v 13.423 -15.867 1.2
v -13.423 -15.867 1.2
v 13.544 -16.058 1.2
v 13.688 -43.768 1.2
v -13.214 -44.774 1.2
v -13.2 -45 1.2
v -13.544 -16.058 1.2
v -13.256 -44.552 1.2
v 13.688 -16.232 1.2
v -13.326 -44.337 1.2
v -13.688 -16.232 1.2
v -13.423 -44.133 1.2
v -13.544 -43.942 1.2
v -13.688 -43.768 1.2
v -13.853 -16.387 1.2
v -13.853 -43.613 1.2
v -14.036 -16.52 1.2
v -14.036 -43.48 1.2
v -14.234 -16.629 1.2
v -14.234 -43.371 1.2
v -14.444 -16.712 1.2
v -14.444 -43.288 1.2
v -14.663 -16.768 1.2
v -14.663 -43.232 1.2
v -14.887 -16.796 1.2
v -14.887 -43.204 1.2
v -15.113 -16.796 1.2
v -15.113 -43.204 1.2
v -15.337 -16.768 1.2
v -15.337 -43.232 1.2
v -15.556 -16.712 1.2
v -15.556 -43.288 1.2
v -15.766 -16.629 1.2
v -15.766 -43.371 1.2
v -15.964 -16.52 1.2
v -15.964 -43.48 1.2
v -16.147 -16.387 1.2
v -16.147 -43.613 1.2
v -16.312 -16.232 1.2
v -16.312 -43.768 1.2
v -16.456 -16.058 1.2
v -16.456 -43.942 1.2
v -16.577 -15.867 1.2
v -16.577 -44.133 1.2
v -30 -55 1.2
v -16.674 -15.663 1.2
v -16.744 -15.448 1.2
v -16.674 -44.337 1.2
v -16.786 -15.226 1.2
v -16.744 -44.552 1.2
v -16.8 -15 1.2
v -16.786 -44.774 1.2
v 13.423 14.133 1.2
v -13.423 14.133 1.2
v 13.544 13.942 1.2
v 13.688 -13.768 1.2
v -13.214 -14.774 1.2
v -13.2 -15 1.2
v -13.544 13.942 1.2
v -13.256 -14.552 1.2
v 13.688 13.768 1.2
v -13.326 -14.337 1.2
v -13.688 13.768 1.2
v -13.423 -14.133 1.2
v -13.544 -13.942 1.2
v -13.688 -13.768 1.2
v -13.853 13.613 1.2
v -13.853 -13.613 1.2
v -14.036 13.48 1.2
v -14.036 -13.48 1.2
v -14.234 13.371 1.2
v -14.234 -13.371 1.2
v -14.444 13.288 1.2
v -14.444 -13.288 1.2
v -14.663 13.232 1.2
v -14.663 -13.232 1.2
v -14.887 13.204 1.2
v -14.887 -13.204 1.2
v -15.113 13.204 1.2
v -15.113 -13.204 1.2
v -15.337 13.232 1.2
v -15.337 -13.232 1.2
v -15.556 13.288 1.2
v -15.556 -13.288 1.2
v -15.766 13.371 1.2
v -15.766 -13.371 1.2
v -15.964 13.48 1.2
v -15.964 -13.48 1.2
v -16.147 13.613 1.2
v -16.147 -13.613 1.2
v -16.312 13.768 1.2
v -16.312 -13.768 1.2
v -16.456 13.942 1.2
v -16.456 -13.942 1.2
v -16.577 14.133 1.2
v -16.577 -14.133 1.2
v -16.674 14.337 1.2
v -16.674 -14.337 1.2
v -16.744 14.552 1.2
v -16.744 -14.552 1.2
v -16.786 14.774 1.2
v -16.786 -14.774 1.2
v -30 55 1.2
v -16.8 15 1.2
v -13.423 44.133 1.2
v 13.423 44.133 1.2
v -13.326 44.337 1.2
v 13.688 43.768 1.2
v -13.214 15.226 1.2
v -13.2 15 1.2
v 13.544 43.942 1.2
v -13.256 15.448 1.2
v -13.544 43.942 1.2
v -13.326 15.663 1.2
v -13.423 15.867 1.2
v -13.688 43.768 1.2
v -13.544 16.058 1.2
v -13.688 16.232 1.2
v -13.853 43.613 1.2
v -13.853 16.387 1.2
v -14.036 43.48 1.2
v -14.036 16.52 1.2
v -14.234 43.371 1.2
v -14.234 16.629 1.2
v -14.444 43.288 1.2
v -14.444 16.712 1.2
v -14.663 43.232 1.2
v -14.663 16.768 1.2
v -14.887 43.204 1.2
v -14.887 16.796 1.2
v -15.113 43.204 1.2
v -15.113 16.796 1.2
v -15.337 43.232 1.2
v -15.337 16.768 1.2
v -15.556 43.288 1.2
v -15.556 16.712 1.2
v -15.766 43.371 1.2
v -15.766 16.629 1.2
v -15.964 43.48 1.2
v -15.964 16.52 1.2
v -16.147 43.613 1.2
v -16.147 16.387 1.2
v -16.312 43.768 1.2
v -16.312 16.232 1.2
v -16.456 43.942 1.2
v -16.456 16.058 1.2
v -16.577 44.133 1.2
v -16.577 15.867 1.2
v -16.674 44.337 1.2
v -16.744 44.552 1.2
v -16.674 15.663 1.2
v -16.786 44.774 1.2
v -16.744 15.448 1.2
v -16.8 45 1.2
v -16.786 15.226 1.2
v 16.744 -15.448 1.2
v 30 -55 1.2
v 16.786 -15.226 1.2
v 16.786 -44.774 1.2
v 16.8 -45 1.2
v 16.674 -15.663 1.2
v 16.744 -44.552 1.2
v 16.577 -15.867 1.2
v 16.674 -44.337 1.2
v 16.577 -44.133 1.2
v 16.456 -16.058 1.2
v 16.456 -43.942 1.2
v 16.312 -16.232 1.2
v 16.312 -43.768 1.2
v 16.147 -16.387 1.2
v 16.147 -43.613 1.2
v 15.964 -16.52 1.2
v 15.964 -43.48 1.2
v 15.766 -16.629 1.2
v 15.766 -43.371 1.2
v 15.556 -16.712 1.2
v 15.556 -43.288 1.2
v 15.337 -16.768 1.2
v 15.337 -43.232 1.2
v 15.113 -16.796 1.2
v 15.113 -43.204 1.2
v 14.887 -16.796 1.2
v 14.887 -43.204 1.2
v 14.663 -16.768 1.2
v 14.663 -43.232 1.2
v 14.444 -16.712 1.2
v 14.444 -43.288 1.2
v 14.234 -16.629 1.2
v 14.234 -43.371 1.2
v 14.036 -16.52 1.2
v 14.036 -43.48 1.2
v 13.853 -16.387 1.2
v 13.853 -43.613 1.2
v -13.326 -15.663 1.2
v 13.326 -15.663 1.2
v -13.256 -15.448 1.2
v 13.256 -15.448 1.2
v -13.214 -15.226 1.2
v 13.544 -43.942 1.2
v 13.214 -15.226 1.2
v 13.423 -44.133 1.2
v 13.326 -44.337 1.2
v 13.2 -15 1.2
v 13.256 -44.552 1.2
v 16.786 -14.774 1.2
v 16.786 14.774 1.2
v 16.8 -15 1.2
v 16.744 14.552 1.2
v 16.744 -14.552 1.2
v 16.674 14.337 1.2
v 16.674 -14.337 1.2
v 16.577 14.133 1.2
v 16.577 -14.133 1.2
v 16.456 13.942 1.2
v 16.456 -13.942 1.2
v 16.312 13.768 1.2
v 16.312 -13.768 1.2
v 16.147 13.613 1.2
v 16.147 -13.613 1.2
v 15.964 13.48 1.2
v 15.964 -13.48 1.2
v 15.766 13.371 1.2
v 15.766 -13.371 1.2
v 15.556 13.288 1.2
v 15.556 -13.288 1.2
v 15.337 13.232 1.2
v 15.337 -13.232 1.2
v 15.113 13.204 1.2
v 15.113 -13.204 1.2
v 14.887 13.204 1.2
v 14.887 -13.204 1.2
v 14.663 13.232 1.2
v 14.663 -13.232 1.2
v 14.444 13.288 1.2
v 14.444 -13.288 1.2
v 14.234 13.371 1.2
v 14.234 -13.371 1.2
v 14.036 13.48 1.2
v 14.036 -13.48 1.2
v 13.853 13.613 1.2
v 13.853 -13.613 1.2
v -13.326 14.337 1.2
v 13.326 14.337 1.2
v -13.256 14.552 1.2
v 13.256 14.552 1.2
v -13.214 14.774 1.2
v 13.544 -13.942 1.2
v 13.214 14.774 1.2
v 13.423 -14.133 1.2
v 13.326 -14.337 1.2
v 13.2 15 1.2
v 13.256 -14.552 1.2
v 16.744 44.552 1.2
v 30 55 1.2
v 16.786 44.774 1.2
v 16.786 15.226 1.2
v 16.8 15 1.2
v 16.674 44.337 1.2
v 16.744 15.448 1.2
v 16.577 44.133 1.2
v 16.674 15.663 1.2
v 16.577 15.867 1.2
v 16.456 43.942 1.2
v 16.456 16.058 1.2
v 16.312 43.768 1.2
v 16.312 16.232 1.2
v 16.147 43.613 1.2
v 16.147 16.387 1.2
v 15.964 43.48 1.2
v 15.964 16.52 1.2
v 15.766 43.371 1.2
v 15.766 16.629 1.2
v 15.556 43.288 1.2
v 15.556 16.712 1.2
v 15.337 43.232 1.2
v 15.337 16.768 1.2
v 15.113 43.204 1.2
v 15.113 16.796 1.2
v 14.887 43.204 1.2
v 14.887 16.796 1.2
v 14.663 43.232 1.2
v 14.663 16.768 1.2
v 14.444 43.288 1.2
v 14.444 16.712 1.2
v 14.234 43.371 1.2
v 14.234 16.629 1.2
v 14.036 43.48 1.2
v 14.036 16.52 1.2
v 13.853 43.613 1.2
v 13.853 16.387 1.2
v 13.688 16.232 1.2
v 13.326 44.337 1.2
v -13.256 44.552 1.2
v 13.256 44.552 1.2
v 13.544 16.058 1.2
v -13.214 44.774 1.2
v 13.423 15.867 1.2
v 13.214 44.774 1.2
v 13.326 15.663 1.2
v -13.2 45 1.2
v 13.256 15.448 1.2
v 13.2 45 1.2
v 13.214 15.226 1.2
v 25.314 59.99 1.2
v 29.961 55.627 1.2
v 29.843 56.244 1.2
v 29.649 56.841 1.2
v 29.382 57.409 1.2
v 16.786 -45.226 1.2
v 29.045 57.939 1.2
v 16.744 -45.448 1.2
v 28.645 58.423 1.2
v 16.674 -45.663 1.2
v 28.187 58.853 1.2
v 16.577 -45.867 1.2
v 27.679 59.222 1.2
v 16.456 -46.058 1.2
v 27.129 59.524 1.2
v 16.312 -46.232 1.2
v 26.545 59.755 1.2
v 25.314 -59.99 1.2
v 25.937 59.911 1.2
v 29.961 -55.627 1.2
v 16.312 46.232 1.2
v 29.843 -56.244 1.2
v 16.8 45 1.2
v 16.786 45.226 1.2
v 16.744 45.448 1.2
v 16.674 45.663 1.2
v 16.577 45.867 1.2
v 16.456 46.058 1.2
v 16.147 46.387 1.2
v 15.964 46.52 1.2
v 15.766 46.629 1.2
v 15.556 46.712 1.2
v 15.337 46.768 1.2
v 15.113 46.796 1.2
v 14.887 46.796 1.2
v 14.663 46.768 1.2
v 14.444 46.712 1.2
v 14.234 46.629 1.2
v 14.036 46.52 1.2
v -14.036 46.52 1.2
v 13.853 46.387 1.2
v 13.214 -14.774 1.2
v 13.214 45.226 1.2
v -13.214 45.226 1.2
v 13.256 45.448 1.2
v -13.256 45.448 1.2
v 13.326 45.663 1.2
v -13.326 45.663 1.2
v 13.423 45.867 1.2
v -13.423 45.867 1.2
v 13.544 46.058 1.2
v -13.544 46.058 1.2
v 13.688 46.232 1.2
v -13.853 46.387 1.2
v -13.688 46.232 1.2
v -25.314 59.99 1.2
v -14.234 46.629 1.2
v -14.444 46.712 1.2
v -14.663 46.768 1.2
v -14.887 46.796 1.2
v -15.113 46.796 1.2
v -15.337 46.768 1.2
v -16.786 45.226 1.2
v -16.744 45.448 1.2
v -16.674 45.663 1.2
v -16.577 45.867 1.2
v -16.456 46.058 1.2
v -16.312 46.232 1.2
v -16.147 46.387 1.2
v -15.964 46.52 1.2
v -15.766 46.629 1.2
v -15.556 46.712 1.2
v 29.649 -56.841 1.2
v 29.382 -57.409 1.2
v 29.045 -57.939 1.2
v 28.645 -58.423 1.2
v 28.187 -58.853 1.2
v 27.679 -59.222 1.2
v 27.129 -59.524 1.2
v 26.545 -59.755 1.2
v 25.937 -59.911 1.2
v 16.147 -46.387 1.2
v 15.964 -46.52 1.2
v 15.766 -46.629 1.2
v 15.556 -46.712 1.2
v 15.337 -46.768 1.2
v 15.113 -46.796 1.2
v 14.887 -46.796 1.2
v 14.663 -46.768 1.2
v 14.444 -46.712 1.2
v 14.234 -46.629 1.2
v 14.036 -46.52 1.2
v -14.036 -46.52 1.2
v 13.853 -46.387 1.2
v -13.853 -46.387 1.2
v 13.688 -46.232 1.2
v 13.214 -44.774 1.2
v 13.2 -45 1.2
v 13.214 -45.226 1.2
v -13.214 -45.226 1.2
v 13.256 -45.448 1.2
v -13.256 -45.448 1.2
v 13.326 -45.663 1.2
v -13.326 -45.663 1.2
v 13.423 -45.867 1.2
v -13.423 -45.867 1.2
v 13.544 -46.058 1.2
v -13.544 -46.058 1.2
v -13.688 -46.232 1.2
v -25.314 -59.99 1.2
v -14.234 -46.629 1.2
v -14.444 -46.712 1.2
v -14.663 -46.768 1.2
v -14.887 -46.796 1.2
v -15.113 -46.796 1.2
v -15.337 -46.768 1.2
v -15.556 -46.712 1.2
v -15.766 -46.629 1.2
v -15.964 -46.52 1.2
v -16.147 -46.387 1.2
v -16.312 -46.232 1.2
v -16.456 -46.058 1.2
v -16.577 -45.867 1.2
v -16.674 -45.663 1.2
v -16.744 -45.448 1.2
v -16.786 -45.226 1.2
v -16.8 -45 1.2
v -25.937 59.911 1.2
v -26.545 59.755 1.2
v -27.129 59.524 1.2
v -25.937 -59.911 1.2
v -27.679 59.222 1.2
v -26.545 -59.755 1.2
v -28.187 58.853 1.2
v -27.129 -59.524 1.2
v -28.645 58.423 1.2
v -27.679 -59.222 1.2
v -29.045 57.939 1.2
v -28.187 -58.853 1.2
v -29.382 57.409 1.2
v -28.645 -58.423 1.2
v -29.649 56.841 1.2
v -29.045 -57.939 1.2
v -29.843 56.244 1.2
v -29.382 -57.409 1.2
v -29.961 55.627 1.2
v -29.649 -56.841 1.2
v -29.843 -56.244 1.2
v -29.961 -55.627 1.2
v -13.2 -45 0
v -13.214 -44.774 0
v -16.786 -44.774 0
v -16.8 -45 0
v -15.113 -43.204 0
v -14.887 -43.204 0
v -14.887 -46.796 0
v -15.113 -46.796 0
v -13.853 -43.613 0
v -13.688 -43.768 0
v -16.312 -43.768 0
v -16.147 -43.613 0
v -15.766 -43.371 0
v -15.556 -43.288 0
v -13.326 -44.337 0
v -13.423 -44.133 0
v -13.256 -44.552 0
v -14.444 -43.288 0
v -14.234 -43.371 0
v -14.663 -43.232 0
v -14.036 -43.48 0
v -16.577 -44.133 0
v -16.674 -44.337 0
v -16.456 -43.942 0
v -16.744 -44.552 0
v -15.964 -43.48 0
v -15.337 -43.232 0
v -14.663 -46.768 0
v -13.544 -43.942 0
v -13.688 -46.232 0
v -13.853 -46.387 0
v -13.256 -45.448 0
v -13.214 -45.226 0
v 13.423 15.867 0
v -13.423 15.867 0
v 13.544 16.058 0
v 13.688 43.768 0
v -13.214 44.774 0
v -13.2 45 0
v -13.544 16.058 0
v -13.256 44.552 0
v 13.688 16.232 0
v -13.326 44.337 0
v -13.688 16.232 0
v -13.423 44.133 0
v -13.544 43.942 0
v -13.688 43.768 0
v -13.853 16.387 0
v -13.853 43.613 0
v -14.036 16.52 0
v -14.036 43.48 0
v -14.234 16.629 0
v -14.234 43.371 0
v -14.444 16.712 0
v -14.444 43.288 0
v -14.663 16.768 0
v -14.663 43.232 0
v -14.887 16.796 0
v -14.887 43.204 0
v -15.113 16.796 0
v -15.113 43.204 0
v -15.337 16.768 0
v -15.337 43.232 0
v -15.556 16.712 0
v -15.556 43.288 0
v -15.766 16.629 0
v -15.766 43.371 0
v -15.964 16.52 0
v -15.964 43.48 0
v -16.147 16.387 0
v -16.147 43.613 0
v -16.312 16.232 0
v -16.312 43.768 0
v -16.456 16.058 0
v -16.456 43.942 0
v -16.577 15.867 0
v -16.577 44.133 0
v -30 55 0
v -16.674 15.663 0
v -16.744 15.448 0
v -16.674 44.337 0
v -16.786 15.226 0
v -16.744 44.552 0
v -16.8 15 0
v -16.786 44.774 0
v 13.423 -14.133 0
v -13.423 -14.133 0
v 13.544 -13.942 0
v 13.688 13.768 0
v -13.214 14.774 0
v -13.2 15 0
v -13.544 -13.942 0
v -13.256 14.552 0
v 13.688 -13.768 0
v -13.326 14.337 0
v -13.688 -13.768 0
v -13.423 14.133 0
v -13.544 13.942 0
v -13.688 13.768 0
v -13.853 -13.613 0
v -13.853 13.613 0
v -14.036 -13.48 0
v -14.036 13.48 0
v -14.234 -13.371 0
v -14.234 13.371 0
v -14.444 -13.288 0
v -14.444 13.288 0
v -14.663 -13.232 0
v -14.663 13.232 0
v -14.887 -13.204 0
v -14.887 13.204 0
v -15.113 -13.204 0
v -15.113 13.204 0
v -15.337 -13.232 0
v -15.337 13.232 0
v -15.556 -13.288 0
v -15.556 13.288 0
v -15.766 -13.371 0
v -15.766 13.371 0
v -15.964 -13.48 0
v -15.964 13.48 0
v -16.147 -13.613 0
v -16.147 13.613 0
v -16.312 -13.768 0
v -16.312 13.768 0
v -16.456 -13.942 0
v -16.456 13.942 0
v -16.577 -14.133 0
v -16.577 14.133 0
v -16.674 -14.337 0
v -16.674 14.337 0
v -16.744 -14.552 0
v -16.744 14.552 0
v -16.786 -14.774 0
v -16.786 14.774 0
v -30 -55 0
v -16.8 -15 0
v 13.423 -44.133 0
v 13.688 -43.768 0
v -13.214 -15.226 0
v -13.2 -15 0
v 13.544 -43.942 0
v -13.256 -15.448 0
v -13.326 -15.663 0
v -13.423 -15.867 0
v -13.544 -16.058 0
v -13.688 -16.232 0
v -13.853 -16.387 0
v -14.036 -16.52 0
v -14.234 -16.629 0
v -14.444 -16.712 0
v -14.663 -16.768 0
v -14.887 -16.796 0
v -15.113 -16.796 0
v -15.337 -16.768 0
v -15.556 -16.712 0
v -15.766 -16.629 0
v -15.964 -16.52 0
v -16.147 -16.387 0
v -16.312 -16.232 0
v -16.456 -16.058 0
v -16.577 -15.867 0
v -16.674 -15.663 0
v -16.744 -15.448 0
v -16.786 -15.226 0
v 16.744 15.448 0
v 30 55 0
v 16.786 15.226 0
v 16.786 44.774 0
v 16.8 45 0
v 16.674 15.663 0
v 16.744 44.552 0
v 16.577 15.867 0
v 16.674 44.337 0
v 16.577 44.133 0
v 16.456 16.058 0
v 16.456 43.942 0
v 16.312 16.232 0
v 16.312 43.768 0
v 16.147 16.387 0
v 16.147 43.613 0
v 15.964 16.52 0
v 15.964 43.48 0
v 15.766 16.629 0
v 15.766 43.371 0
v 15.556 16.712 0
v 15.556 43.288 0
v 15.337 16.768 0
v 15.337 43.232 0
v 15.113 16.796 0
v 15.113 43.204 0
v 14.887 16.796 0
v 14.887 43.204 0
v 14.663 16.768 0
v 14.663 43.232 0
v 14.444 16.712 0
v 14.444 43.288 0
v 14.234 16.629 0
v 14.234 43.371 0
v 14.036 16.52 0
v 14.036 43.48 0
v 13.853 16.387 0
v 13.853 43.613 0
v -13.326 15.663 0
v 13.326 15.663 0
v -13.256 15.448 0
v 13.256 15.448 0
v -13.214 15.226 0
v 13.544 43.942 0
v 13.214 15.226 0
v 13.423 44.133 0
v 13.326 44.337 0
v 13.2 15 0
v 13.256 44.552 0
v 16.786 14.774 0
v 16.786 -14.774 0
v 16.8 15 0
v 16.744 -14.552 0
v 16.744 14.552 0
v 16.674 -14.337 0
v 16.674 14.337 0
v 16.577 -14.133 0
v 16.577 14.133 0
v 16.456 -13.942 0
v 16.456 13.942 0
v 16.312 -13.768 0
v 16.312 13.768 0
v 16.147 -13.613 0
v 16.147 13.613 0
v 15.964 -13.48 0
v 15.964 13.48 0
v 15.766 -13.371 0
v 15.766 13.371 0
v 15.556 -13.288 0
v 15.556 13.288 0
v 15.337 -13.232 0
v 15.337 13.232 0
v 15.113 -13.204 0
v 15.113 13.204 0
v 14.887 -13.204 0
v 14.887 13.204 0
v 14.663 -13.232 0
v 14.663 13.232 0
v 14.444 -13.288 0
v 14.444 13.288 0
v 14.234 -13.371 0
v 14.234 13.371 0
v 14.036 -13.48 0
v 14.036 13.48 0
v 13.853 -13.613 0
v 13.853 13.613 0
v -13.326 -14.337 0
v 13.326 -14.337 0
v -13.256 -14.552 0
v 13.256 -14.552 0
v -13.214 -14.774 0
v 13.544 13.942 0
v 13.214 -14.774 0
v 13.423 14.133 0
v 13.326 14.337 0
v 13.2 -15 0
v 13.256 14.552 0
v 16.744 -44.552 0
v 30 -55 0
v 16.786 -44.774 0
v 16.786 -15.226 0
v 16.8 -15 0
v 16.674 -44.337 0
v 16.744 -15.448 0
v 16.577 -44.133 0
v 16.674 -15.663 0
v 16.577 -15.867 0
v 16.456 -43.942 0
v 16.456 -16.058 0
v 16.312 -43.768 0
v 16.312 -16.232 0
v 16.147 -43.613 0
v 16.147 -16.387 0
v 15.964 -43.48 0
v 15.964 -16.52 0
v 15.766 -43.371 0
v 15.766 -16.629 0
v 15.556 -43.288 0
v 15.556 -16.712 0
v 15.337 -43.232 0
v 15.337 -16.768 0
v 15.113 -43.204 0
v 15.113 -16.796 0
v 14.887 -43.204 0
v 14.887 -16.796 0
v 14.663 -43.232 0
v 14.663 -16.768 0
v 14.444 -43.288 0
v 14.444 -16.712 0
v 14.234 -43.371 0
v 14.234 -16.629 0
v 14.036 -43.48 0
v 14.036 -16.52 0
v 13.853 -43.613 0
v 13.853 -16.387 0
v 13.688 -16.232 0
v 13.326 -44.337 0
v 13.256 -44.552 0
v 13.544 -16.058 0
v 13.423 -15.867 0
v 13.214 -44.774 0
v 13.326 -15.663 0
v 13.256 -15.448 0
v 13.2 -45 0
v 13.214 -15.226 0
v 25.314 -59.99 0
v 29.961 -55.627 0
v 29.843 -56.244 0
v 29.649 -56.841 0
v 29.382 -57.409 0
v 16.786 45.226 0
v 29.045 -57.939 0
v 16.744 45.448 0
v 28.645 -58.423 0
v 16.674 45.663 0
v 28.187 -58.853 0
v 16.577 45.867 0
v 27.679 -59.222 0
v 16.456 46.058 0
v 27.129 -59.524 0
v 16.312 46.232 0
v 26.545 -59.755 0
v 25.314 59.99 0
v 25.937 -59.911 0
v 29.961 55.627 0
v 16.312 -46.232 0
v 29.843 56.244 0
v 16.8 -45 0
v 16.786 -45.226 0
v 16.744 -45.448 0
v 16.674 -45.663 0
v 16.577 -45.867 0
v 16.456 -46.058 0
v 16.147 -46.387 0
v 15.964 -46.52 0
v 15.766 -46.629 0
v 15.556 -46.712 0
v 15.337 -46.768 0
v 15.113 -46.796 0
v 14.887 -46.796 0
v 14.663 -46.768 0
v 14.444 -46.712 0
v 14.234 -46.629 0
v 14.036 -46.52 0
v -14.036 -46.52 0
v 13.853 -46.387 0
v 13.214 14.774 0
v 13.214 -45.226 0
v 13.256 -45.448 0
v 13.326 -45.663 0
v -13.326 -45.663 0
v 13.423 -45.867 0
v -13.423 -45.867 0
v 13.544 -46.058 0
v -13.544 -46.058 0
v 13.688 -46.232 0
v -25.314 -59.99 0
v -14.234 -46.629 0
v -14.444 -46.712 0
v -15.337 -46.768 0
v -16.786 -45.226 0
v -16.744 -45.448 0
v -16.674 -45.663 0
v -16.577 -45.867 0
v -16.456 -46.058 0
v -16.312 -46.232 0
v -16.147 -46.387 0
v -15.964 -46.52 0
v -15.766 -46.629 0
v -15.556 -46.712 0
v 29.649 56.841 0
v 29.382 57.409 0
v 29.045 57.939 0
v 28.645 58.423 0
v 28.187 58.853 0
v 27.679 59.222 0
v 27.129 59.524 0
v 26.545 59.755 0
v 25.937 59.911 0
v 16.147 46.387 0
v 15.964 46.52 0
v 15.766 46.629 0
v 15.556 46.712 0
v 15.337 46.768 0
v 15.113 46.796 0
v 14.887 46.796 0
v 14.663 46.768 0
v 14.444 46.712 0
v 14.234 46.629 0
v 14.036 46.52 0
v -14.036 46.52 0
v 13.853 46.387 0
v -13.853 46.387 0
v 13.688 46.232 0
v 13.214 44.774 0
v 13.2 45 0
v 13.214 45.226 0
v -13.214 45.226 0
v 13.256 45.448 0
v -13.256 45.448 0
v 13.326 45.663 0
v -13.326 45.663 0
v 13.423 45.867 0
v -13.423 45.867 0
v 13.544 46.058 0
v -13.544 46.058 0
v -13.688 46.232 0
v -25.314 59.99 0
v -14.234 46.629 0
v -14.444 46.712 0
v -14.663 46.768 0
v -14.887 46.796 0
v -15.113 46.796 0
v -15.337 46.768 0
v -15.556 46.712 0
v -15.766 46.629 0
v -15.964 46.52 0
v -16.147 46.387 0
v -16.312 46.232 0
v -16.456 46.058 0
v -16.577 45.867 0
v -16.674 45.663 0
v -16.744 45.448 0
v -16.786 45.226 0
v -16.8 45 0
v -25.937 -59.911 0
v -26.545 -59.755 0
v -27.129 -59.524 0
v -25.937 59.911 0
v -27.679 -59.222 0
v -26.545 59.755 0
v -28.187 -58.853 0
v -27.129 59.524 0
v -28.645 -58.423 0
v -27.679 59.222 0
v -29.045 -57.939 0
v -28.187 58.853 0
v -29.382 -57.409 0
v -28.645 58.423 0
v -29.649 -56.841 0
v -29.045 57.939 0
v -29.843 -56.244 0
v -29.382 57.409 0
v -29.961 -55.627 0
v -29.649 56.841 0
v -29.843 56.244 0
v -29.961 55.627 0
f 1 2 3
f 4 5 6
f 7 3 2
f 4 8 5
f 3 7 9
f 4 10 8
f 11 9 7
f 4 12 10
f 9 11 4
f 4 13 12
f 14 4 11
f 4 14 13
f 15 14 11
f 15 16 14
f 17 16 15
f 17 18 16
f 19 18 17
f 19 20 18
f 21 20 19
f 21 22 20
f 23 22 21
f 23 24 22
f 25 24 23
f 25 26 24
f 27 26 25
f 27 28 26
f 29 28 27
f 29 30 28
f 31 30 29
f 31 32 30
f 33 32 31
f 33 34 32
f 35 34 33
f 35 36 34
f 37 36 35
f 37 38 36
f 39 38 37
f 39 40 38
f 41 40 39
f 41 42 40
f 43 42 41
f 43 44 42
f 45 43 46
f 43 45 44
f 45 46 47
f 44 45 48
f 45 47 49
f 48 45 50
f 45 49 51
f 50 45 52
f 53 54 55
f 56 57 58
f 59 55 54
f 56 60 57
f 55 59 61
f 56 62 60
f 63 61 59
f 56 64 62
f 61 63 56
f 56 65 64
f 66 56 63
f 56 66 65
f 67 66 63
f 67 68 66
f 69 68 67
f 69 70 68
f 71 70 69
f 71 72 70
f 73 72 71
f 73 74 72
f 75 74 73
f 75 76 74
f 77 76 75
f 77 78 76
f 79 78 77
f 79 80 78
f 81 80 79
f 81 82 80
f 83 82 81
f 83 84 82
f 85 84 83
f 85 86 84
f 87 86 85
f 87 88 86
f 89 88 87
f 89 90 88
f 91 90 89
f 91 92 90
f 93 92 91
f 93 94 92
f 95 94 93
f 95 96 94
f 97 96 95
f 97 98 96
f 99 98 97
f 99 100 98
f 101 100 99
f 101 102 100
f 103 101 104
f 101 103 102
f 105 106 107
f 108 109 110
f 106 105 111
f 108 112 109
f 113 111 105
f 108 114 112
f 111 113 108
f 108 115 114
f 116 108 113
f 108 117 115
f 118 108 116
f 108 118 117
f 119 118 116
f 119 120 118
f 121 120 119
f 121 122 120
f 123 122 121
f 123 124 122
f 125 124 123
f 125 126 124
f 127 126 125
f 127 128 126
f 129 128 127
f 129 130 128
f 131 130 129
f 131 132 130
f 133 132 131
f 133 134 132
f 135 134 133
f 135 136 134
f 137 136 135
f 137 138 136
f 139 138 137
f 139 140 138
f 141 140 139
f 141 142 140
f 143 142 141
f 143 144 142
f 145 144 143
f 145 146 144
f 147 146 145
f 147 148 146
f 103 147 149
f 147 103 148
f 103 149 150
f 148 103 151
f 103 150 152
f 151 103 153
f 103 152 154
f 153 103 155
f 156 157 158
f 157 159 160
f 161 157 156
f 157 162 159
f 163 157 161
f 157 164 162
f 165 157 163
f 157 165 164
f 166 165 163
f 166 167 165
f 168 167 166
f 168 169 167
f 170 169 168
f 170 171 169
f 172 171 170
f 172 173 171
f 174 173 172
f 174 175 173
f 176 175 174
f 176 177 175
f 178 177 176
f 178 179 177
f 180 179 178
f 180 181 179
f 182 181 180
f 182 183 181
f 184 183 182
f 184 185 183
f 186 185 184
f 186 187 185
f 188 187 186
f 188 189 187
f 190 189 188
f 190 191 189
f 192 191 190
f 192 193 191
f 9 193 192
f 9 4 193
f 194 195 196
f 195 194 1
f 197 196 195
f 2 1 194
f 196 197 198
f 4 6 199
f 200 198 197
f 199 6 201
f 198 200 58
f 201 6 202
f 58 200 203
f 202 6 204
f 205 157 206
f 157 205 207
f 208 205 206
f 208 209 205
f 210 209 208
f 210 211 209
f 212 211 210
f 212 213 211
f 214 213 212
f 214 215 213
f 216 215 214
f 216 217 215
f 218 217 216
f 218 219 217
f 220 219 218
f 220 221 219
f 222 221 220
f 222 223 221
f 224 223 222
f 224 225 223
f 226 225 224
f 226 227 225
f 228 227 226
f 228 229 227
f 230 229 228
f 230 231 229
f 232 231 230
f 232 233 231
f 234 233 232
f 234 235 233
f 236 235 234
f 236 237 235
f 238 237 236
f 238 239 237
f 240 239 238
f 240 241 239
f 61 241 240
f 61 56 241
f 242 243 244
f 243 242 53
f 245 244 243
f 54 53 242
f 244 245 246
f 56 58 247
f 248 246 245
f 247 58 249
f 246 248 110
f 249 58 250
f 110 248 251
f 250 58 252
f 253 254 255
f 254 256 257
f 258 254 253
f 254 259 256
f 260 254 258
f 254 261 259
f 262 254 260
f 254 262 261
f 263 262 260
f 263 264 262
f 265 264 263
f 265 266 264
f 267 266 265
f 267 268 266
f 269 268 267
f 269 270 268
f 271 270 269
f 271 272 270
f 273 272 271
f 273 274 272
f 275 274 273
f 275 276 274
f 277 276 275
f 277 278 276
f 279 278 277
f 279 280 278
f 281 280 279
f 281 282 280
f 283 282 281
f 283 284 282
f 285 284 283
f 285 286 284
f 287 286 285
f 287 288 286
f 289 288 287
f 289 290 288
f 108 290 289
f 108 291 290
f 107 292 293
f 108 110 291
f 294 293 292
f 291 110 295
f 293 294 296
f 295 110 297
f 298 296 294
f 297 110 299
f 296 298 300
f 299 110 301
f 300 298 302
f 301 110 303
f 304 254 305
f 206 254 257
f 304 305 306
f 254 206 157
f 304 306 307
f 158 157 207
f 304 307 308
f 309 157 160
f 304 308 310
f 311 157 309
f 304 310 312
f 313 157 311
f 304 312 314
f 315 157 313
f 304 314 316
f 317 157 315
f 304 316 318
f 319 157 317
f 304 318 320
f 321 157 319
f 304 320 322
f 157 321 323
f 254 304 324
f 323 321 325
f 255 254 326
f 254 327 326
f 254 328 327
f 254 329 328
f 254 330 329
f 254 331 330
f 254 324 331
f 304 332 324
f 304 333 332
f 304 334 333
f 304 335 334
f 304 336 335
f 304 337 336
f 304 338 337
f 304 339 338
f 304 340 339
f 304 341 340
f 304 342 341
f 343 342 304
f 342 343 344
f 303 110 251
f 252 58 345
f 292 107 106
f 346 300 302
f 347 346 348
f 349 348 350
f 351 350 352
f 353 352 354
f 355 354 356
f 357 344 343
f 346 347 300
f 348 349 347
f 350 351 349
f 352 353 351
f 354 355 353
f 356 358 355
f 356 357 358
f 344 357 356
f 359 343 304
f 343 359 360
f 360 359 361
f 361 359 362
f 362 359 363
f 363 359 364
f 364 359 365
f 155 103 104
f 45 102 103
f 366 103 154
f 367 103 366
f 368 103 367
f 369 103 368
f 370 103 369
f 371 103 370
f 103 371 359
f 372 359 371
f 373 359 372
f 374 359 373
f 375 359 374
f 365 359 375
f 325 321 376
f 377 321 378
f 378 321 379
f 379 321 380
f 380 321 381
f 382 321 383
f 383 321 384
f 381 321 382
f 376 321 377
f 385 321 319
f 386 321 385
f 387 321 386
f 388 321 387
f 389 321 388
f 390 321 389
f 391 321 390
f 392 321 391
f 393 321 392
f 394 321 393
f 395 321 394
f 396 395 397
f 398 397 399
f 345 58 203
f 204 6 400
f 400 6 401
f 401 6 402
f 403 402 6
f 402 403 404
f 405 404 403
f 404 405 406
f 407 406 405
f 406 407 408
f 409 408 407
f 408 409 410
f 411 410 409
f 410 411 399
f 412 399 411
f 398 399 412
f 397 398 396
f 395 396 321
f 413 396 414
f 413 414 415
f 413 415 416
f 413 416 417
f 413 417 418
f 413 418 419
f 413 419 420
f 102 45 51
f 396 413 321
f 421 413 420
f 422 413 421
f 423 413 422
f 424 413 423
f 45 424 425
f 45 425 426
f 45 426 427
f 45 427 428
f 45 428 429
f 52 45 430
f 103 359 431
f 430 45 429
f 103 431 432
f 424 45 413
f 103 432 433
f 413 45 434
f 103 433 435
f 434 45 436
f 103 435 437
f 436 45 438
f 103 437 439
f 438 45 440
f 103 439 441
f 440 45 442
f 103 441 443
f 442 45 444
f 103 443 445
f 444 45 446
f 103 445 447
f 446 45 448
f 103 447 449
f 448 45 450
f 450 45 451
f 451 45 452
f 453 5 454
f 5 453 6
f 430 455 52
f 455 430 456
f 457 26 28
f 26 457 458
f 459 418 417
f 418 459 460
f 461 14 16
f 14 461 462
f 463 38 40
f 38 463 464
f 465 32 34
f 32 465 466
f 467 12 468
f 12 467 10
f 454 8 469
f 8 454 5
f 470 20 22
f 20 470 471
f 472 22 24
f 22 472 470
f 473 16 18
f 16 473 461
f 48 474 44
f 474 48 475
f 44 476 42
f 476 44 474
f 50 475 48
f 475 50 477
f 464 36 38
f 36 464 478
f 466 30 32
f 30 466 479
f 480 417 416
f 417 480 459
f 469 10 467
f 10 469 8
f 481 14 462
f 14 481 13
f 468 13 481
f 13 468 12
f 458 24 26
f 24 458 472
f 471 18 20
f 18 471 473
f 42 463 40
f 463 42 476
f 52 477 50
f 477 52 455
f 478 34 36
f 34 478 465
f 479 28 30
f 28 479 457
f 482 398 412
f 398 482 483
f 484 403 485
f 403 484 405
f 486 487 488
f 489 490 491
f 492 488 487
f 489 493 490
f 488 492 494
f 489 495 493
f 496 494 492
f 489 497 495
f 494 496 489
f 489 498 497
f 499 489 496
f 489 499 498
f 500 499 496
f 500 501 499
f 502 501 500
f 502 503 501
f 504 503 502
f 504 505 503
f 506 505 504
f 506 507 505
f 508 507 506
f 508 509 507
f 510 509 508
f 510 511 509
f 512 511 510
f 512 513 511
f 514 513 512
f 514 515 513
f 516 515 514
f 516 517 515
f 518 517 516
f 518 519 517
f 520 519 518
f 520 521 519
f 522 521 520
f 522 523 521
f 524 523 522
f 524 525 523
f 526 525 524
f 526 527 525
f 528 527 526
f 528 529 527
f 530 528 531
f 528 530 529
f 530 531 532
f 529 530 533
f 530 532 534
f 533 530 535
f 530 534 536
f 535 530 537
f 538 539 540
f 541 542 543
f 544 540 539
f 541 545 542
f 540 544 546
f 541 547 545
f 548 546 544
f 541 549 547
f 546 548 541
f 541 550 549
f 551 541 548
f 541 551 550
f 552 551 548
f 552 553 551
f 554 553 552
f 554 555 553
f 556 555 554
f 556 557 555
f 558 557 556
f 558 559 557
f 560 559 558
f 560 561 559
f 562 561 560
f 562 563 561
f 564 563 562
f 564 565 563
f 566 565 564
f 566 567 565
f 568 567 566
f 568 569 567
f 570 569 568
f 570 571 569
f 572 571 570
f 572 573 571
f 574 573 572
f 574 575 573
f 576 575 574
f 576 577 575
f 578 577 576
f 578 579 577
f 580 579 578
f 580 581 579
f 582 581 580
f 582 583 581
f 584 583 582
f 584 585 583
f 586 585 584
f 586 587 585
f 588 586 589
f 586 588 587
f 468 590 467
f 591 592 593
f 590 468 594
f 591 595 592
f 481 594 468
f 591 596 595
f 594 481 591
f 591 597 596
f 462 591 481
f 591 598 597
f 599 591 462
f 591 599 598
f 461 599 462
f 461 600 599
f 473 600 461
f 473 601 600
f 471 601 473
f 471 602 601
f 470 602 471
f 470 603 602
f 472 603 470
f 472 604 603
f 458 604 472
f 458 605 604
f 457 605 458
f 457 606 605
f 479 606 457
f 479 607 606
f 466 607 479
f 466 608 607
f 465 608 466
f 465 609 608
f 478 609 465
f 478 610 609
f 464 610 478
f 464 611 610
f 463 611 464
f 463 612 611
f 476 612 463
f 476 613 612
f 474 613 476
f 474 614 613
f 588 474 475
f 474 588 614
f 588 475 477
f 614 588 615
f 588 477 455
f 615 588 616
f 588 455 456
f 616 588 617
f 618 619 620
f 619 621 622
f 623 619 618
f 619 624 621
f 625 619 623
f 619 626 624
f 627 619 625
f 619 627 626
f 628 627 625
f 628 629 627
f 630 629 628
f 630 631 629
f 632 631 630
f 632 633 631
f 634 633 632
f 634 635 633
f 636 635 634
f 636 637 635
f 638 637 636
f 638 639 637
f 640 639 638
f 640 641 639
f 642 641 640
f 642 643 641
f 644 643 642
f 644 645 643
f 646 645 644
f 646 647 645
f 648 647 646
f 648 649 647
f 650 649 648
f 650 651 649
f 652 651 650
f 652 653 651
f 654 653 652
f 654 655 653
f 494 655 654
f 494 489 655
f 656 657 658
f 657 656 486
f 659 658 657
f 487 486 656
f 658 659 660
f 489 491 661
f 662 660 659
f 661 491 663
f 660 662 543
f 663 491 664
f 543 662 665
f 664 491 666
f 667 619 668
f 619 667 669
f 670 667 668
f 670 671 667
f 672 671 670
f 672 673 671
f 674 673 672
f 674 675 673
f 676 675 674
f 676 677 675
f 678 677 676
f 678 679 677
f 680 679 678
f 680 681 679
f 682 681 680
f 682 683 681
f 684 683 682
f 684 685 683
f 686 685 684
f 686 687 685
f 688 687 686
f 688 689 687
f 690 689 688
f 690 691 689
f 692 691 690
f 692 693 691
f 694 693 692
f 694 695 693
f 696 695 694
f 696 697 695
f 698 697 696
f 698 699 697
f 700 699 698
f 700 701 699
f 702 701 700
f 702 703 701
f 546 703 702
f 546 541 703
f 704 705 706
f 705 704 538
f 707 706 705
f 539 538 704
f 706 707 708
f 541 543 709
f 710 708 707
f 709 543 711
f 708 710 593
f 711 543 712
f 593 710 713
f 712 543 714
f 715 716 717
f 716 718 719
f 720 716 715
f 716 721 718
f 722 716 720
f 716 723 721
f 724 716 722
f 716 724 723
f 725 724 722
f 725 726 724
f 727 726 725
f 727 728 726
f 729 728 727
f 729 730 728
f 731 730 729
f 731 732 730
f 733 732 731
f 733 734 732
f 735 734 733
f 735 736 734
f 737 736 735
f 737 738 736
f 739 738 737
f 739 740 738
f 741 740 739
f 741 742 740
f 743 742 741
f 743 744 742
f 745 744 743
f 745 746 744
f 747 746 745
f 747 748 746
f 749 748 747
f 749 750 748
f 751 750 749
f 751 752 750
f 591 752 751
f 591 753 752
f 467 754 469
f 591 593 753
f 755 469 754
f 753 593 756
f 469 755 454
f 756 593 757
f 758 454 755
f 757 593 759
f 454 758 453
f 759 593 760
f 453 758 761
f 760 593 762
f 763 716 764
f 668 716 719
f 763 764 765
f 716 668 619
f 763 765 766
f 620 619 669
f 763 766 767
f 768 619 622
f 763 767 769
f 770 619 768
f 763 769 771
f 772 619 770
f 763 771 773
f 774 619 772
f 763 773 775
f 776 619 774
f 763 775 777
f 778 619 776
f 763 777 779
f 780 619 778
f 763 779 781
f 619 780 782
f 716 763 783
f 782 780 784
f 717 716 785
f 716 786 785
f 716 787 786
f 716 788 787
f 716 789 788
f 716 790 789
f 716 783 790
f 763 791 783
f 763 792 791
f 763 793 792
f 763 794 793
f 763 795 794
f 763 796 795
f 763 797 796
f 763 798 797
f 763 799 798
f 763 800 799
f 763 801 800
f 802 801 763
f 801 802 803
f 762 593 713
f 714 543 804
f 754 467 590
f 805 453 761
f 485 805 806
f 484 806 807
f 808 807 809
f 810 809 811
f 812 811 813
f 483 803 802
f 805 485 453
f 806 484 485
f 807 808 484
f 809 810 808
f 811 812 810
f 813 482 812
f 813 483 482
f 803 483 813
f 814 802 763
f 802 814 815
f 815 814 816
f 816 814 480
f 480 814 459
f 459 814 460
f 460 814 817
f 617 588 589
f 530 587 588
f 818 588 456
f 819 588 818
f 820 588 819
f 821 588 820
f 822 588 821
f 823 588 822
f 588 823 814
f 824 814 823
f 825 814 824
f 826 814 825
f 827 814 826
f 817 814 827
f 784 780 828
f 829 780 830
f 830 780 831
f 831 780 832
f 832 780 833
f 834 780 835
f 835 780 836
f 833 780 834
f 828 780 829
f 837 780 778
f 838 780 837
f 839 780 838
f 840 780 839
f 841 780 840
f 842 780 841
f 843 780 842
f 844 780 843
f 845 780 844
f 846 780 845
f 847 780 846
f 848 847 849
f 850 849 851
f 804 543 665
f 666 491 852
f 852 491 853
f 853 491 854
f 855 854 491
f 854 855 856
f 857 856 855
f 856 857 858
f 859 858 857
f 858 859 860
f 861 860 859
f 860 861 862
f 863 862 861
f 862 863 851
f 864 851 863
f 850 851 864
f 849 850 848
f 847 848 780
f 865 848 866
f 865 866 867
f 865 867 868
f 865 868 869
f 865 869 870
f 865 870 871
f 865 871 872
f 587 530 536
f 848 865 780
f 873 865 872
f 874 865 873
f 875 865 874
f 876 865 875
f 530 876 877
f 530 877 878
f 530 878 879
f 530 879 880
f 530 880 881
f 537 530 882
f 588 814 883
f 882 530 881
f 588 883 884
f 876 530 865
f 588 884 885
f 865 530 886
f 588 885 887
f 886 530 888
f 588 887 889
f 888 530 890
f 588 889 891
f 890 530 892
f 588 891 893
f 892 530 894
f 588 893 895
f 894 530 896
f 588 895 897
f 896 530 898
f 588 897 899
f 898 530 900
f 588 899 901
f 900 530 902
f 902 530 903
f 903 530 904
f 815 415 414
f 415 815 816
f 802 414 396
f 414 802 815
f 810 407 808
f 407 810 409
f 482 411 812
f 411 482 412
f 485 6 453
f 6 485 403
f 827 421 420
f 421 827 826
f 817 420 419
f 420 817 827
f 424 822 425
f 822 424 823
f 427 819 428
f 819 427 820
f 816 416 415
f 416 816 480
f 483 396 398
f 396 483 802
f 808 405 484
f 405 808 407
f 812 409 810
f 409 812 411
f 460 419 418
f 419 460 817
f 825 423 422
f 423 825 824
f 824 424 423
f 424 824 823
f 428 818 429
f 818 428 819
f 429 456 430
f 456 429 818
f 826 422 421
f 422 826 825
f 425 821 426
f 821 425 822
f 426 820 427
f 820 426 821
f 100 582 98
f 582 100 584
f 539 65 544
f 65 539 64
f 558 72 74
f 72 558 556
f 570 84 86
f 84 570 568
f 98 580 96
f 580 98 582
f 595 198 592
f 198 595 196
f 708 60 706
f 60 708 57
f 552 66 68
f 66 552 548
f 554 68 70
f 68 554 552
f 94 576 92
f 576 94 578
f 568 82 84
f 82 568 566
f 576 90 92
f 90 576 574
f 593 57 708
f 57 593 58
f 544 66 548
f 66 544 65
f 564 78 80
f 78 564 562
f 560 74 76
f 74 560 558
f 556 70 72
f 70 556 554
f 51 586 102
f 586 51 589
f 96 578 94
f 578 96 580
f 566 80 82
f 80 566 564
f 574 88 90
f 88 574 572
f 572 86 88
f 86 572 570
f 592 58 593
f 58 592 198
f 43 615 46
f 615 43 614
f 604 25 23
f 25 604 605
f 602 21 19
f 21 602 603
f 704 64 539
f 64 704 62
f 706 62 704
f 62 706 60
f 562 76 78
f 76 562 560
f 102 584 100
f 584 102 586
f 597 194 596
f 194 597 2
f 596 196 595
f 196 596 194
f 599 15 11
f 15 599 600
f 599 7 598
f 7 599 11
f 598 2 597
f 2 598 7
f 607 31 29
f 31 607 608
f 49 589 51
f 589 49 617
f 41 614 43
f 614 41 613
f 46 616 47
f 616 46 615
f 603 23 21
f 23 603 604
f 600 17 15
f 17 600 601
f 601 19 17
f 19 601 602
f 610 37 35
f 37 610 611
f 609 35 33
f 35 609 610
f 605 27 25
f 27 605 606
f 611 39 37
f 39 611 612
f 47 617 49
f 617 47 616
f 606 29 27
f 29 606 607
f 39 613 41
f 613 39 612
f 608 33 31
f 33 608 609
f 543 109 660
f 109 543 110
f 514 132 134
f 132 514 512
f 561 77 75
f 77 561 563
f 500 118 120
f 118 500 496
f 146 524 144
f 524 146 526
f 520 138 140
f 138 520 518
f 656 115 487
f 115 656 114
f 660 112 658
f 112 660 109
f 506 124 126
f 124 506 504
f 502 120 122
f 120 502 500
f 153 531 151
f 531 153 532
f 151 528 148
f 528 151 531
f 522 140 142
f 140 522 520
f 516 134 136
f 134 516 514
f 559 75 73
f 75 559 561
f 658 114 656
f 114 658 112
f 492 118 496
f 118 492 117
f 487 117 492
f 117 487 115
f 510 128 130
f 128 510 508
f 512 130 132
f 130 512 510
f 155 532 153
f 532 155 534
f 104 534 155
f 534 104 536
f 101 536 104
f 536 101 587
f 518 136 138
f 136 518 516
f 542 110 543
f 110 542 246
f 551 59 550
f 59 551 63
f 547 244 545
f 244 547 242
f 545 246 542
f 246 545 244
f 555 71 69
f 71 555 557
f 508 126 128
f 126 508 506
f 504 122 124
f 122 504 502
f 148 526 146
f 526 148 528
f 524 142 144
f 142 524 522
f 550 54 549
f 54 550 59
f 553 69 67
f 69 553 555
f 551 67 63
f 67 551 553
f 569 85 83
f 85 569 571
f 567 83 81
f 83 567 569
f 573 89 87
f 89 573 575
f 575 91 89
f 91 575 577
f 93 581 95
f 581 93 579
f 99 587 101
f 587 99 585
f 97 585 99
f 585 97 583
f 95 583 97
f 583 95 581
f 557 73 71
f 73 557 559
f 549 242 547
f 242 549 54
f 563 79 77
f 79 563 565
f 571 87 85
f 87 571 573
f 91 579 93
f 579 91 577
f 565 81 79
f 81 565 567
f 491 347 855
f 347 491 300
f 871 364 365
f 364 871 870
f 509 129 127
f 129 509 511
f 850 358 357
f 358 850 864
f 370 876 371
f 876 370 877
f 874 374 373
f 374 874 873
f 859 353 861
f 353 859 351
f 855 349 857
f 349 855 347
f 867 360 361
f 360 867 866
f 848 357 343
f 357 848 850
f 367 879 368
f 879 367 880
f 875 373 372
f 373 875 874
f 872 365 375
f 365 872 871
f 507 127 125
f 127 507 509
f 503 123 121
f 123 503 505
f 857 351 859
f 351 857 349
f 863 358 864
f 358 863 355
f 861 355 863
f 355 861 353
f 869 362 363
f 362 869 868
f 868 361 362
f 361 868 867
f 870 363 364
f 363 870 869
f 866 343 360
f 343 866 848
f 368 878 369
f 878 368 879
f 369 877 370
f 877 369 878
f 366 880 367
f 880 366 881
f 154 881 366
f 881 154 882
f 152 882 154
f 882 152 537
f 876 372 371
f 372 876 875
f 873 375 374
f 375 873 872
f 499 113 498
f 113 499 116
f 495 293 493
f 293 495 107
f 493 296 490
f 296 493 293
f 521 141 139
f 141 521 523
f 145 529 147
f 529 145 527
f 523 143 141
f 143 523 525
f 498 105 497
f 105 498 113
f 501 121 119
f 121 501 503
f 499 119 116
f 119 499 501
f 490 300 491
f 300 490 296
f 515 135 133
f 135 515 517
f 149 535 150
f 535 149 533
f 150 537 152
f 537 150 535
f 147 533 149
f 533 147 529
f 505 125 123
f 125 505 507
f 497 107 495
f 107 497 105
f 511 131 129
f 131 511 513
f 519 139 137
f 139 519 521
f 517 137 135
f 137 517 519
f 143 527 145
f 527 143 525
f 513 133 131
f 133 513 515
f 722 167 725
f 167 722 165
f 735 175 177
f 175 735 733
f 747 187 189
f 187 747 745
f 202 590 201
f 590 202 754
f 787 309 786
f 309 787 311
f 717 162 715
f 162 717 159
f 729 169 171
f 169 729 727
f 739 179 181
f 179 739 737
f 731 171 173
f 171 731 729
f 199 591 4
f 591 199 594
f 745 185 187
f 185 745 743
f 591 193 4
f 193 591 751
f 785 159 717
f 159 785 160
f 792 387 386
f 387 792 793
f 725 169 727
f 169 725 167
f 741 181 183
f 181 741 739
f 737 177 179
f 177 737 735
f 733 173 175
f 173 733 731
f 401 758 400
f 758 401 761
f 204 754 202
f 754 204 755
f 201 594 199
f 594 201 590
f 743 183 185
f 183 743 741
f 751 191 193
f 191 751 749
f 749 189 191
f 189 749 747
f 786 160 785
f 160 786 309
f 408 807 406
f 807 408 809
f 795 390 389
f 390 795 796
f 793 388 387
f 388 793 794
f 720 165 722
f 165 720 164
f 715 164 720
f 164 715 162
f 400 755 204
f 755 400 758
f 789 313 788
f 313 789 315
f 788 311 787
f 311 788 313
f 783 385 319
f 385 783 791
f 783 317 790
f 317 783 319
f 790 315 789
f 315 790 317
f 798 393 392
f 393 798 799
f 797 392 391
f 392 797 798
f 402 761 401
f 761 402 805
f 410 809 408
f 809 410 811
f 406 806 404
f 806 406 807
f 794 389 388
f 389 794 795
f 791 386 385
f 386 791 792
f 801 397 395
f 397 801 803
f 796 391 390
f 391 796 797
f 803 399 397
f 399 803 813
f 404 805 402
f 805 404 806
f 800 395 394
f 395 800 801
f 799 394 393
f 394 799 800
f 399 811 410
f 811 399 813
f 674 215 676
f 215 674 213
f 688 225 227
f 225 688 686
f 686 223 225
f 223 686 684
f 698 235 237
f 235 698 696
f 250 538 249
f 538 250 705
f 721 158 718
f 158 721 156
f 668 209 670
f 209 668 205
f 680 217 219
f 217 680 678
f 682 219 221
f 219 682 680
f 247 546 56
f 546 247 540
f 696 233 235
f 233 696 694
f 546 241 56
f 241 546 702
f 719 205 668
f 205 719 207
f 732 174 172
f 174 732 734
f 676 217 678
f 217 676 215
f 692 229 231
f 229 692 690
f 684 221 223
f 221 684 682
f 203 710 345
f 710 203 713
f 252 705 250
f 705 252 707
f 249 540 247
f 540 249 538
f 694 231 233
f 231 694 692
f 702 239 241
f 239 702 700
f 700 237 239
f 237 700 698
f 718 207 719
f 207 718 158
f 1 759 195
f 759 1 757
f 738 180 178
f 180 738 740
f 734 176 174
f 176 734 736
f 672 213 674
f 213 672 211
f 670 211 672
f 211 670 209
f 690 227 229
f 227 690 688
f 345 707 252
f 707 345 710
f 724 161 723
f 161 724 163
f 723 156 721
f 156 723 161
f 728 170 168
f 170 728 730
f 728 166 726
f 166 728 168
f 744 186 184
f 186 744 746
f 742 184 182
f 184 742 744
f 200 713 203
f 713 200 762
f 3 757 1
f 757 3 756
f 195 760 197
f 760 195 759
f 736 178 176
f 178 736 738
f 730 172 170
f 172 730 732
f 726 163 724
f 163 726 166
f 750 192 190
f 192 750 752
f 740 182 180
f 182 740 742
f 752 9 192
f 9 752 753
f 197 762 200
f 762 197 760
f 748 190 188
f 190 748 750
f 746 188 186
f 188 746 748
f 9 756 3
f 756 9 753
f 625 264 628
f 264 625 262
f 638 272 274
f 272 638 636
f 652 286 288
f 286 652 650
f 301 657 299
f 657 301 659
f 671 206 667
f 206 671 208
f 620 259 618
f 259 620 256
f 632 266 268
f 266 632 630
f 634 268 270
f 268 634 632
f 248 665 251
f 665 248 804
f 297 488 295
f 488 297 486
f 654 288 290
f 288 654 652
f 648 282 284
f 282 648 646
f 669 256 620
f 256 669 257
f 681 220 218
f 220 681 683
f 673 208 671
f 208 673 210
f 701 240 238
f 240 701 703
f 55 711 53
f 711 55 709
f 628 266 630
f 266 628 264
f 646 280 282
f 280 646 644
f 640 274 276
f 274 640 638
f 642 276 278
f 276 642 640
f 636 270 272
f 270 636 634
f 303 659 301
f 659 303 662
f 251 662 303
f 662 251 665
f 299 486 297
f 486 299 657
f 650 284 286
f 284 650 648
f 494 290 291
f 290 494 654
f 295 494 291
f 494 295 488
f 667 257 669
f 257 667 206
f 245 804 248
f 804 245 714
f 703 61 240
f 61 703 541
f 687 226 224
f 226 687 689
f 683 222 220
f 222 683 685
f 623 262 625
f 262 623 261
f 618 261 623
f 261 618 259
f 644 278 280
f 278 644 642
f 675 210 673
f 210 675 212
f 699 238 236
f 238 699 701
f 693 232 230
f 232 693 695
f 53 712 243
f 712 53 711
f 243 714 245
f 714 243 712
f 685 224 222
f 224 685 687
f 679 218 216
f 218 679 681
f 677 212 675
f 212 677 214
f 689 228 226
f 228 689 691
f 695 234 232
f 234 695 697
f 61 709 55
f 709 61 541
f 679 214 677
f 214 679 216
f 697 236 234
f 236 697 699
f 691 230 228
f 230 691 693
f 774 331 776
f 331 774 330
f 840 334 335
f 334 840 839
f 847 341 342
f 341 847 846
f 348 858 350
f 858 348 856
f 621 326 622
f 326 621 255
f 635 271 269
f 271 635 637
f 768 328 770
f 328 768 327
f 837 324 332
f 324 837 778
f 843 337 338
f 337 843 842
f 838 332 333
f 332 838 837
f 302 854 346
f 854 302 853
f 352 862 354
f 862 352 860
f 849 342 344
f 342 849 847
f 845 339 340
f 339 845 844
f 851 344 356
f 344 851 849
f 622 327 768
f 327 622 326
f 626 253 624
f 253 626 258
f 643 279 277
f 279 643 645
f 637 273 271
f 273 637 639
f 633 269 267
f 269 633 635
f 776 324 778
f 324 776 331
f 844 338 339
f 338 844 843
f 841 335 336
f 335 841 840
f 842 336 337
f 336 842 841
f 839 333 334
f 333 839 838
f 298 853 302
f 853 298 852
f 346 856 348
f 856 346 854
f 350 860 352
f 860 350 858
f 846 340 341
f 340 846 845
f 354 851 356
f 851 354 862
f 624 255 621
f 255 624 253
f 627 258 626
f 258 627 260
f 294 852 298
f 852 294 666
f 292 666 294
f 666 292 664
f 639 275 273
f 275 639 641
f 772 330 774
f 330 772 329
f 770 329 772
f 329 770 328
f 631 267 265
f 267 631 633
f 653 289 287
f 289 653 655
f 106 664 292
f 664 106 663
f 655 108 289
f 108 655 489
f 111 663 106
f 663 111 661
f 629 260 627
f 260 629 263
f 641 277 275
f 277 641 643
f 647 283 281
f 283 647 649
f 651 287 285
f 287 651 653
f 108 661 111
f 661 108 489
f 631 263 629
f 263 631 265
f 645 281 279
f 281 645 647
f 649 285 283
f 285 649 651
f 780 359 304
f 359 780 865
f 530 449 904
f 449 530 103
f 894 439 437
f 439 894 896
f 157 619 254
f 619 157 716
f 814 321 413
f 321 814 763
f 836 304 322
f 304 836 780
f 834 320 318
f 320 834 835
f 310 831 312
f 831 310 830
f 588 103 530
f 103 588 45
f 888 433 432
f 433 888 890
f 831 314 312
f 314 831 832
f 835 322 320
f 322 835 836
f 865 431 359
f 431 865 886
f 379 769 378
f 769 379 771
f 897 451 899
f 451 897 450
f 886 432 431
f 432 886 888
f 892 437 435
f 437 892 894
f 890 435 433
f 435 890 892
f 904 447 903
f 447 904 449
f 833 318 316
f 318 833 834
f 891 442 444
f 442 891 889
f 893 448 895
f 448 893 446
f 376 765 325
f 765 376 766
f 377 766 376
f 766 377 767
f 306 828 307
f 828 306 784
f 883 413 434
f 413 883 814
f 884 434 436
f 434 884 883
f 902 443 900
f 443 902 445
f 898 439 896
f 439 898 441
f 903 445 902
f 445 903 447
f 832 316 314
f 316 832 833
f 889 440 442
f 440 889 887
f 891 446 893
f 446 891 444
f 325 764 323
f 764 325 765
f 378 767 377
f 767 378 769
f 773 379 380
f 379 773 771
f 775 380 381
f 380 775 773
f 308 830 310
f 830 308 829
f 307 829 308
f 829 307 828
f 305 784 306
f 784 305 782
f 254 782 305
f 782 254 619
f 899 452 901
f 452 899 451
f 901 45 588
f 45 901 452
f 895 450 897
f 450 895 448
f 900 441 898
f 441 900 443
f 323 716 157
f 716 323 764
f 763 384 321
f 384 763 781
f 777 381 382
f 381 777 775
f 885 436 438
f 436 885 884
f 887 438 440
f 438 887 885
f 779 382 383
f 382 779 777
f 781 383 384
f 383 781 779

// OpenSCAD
$fn = 50;


difference() {
	union() {
		hull() {
			translate(v = [-25.0000000000, 55.0000000000, 0]) {
				cylinder(h = 27, r = 5);
			}
			translate(v = [25.0000000000, 55.0000000000, 0]) {
				cylinder(h = 27, r = 5);
			}
			translate(v = [-25.0000000000, -55.0000000000, 0]) {
				cylinder(h = 27, r = 5);
			}
			translate(v = [25.0000000000, -55.0000000000, 0]) {
				cylinder(h = 27, r = 5);
			}
		}
	}
	union() {
		translate(v = [0, 0, 1.2000000000]) {
			hull() {
				translate(v = [-25.0000000000, 55.0000000000, 0]) {
					cylinder(h = 25.8000000000, r = 3.8000000000);
				}
				translate(v = [25.0000000000, 55.0000000000, 0]) {
					cylinder(h = 25.8000000000, r = 3.8000000000);
				}
				translate(v = [-25.0000000000, -55.0000000000, 0]) {
					cylinder(h = 25.8000000000, r = 3.8000000000);
				}
				translate(v = [25.0000000000, -55.0000000000, 0]) {
					cylinder(h = 25.8000000000, r = 3.8000000000);
				}
			}
		}
		#translate(v = [-15.0000000000, -45.0000000000, 0]) {
			cylinder(h = 1.2000000000, r = 1.8000000000);
		}
		#translate(v = [-15.0000000000, -15.0000000000, 0]) {
			cylinder(h = 1.2000000000, r = 1.8000000000);
		}
		#translate(v = [-15.0000000000, 15.0000000000, 0]) {
			cylinder(h = 1.2000000000, r = 1.8000000000);
		}
		#translate(v = [-15.0000000000, 45.0000000000, 0]) {
			cylinder(h = 1.2000000000, r = 1.8000000000);
		}
		#translate(v = [15.0000000000, -45.0000000000, 0]) {
			cylinder(h = 1.2000000000, r = 1.8000000000);
		}
		#translate(v = [15.0000000000, -15.0000000000, 0]) {
			cylinder(h = 1.2000000000, r = 1.8000000000);
		}
		#translate(v = [15.0000000000, 15.0000000000, 0]) {
			cylinder(h = 1.2000000000, r = 1.8000000000);
		}
		#translate(v = [15.0000000000, 45.0000000000, 0]) {
			cylinder(h = 1.2000000000, r = 1.8000000000);
		}
		translate(v = [-250.0000000000, -250.0000000000, 1.2000000000]) {
			cube(size = [500, 500, 500]);
		}
		translate(v = [-250.0000000000, -250.0000000000, 1.2000000000]) {
			cube(size = [500, 500, 500]);
		}
		translate(v = [-250.0000000000, -250.0000000000, 1.2000000000]) {
			cube(size = [500, 500, 500]);
		}
	}
}
